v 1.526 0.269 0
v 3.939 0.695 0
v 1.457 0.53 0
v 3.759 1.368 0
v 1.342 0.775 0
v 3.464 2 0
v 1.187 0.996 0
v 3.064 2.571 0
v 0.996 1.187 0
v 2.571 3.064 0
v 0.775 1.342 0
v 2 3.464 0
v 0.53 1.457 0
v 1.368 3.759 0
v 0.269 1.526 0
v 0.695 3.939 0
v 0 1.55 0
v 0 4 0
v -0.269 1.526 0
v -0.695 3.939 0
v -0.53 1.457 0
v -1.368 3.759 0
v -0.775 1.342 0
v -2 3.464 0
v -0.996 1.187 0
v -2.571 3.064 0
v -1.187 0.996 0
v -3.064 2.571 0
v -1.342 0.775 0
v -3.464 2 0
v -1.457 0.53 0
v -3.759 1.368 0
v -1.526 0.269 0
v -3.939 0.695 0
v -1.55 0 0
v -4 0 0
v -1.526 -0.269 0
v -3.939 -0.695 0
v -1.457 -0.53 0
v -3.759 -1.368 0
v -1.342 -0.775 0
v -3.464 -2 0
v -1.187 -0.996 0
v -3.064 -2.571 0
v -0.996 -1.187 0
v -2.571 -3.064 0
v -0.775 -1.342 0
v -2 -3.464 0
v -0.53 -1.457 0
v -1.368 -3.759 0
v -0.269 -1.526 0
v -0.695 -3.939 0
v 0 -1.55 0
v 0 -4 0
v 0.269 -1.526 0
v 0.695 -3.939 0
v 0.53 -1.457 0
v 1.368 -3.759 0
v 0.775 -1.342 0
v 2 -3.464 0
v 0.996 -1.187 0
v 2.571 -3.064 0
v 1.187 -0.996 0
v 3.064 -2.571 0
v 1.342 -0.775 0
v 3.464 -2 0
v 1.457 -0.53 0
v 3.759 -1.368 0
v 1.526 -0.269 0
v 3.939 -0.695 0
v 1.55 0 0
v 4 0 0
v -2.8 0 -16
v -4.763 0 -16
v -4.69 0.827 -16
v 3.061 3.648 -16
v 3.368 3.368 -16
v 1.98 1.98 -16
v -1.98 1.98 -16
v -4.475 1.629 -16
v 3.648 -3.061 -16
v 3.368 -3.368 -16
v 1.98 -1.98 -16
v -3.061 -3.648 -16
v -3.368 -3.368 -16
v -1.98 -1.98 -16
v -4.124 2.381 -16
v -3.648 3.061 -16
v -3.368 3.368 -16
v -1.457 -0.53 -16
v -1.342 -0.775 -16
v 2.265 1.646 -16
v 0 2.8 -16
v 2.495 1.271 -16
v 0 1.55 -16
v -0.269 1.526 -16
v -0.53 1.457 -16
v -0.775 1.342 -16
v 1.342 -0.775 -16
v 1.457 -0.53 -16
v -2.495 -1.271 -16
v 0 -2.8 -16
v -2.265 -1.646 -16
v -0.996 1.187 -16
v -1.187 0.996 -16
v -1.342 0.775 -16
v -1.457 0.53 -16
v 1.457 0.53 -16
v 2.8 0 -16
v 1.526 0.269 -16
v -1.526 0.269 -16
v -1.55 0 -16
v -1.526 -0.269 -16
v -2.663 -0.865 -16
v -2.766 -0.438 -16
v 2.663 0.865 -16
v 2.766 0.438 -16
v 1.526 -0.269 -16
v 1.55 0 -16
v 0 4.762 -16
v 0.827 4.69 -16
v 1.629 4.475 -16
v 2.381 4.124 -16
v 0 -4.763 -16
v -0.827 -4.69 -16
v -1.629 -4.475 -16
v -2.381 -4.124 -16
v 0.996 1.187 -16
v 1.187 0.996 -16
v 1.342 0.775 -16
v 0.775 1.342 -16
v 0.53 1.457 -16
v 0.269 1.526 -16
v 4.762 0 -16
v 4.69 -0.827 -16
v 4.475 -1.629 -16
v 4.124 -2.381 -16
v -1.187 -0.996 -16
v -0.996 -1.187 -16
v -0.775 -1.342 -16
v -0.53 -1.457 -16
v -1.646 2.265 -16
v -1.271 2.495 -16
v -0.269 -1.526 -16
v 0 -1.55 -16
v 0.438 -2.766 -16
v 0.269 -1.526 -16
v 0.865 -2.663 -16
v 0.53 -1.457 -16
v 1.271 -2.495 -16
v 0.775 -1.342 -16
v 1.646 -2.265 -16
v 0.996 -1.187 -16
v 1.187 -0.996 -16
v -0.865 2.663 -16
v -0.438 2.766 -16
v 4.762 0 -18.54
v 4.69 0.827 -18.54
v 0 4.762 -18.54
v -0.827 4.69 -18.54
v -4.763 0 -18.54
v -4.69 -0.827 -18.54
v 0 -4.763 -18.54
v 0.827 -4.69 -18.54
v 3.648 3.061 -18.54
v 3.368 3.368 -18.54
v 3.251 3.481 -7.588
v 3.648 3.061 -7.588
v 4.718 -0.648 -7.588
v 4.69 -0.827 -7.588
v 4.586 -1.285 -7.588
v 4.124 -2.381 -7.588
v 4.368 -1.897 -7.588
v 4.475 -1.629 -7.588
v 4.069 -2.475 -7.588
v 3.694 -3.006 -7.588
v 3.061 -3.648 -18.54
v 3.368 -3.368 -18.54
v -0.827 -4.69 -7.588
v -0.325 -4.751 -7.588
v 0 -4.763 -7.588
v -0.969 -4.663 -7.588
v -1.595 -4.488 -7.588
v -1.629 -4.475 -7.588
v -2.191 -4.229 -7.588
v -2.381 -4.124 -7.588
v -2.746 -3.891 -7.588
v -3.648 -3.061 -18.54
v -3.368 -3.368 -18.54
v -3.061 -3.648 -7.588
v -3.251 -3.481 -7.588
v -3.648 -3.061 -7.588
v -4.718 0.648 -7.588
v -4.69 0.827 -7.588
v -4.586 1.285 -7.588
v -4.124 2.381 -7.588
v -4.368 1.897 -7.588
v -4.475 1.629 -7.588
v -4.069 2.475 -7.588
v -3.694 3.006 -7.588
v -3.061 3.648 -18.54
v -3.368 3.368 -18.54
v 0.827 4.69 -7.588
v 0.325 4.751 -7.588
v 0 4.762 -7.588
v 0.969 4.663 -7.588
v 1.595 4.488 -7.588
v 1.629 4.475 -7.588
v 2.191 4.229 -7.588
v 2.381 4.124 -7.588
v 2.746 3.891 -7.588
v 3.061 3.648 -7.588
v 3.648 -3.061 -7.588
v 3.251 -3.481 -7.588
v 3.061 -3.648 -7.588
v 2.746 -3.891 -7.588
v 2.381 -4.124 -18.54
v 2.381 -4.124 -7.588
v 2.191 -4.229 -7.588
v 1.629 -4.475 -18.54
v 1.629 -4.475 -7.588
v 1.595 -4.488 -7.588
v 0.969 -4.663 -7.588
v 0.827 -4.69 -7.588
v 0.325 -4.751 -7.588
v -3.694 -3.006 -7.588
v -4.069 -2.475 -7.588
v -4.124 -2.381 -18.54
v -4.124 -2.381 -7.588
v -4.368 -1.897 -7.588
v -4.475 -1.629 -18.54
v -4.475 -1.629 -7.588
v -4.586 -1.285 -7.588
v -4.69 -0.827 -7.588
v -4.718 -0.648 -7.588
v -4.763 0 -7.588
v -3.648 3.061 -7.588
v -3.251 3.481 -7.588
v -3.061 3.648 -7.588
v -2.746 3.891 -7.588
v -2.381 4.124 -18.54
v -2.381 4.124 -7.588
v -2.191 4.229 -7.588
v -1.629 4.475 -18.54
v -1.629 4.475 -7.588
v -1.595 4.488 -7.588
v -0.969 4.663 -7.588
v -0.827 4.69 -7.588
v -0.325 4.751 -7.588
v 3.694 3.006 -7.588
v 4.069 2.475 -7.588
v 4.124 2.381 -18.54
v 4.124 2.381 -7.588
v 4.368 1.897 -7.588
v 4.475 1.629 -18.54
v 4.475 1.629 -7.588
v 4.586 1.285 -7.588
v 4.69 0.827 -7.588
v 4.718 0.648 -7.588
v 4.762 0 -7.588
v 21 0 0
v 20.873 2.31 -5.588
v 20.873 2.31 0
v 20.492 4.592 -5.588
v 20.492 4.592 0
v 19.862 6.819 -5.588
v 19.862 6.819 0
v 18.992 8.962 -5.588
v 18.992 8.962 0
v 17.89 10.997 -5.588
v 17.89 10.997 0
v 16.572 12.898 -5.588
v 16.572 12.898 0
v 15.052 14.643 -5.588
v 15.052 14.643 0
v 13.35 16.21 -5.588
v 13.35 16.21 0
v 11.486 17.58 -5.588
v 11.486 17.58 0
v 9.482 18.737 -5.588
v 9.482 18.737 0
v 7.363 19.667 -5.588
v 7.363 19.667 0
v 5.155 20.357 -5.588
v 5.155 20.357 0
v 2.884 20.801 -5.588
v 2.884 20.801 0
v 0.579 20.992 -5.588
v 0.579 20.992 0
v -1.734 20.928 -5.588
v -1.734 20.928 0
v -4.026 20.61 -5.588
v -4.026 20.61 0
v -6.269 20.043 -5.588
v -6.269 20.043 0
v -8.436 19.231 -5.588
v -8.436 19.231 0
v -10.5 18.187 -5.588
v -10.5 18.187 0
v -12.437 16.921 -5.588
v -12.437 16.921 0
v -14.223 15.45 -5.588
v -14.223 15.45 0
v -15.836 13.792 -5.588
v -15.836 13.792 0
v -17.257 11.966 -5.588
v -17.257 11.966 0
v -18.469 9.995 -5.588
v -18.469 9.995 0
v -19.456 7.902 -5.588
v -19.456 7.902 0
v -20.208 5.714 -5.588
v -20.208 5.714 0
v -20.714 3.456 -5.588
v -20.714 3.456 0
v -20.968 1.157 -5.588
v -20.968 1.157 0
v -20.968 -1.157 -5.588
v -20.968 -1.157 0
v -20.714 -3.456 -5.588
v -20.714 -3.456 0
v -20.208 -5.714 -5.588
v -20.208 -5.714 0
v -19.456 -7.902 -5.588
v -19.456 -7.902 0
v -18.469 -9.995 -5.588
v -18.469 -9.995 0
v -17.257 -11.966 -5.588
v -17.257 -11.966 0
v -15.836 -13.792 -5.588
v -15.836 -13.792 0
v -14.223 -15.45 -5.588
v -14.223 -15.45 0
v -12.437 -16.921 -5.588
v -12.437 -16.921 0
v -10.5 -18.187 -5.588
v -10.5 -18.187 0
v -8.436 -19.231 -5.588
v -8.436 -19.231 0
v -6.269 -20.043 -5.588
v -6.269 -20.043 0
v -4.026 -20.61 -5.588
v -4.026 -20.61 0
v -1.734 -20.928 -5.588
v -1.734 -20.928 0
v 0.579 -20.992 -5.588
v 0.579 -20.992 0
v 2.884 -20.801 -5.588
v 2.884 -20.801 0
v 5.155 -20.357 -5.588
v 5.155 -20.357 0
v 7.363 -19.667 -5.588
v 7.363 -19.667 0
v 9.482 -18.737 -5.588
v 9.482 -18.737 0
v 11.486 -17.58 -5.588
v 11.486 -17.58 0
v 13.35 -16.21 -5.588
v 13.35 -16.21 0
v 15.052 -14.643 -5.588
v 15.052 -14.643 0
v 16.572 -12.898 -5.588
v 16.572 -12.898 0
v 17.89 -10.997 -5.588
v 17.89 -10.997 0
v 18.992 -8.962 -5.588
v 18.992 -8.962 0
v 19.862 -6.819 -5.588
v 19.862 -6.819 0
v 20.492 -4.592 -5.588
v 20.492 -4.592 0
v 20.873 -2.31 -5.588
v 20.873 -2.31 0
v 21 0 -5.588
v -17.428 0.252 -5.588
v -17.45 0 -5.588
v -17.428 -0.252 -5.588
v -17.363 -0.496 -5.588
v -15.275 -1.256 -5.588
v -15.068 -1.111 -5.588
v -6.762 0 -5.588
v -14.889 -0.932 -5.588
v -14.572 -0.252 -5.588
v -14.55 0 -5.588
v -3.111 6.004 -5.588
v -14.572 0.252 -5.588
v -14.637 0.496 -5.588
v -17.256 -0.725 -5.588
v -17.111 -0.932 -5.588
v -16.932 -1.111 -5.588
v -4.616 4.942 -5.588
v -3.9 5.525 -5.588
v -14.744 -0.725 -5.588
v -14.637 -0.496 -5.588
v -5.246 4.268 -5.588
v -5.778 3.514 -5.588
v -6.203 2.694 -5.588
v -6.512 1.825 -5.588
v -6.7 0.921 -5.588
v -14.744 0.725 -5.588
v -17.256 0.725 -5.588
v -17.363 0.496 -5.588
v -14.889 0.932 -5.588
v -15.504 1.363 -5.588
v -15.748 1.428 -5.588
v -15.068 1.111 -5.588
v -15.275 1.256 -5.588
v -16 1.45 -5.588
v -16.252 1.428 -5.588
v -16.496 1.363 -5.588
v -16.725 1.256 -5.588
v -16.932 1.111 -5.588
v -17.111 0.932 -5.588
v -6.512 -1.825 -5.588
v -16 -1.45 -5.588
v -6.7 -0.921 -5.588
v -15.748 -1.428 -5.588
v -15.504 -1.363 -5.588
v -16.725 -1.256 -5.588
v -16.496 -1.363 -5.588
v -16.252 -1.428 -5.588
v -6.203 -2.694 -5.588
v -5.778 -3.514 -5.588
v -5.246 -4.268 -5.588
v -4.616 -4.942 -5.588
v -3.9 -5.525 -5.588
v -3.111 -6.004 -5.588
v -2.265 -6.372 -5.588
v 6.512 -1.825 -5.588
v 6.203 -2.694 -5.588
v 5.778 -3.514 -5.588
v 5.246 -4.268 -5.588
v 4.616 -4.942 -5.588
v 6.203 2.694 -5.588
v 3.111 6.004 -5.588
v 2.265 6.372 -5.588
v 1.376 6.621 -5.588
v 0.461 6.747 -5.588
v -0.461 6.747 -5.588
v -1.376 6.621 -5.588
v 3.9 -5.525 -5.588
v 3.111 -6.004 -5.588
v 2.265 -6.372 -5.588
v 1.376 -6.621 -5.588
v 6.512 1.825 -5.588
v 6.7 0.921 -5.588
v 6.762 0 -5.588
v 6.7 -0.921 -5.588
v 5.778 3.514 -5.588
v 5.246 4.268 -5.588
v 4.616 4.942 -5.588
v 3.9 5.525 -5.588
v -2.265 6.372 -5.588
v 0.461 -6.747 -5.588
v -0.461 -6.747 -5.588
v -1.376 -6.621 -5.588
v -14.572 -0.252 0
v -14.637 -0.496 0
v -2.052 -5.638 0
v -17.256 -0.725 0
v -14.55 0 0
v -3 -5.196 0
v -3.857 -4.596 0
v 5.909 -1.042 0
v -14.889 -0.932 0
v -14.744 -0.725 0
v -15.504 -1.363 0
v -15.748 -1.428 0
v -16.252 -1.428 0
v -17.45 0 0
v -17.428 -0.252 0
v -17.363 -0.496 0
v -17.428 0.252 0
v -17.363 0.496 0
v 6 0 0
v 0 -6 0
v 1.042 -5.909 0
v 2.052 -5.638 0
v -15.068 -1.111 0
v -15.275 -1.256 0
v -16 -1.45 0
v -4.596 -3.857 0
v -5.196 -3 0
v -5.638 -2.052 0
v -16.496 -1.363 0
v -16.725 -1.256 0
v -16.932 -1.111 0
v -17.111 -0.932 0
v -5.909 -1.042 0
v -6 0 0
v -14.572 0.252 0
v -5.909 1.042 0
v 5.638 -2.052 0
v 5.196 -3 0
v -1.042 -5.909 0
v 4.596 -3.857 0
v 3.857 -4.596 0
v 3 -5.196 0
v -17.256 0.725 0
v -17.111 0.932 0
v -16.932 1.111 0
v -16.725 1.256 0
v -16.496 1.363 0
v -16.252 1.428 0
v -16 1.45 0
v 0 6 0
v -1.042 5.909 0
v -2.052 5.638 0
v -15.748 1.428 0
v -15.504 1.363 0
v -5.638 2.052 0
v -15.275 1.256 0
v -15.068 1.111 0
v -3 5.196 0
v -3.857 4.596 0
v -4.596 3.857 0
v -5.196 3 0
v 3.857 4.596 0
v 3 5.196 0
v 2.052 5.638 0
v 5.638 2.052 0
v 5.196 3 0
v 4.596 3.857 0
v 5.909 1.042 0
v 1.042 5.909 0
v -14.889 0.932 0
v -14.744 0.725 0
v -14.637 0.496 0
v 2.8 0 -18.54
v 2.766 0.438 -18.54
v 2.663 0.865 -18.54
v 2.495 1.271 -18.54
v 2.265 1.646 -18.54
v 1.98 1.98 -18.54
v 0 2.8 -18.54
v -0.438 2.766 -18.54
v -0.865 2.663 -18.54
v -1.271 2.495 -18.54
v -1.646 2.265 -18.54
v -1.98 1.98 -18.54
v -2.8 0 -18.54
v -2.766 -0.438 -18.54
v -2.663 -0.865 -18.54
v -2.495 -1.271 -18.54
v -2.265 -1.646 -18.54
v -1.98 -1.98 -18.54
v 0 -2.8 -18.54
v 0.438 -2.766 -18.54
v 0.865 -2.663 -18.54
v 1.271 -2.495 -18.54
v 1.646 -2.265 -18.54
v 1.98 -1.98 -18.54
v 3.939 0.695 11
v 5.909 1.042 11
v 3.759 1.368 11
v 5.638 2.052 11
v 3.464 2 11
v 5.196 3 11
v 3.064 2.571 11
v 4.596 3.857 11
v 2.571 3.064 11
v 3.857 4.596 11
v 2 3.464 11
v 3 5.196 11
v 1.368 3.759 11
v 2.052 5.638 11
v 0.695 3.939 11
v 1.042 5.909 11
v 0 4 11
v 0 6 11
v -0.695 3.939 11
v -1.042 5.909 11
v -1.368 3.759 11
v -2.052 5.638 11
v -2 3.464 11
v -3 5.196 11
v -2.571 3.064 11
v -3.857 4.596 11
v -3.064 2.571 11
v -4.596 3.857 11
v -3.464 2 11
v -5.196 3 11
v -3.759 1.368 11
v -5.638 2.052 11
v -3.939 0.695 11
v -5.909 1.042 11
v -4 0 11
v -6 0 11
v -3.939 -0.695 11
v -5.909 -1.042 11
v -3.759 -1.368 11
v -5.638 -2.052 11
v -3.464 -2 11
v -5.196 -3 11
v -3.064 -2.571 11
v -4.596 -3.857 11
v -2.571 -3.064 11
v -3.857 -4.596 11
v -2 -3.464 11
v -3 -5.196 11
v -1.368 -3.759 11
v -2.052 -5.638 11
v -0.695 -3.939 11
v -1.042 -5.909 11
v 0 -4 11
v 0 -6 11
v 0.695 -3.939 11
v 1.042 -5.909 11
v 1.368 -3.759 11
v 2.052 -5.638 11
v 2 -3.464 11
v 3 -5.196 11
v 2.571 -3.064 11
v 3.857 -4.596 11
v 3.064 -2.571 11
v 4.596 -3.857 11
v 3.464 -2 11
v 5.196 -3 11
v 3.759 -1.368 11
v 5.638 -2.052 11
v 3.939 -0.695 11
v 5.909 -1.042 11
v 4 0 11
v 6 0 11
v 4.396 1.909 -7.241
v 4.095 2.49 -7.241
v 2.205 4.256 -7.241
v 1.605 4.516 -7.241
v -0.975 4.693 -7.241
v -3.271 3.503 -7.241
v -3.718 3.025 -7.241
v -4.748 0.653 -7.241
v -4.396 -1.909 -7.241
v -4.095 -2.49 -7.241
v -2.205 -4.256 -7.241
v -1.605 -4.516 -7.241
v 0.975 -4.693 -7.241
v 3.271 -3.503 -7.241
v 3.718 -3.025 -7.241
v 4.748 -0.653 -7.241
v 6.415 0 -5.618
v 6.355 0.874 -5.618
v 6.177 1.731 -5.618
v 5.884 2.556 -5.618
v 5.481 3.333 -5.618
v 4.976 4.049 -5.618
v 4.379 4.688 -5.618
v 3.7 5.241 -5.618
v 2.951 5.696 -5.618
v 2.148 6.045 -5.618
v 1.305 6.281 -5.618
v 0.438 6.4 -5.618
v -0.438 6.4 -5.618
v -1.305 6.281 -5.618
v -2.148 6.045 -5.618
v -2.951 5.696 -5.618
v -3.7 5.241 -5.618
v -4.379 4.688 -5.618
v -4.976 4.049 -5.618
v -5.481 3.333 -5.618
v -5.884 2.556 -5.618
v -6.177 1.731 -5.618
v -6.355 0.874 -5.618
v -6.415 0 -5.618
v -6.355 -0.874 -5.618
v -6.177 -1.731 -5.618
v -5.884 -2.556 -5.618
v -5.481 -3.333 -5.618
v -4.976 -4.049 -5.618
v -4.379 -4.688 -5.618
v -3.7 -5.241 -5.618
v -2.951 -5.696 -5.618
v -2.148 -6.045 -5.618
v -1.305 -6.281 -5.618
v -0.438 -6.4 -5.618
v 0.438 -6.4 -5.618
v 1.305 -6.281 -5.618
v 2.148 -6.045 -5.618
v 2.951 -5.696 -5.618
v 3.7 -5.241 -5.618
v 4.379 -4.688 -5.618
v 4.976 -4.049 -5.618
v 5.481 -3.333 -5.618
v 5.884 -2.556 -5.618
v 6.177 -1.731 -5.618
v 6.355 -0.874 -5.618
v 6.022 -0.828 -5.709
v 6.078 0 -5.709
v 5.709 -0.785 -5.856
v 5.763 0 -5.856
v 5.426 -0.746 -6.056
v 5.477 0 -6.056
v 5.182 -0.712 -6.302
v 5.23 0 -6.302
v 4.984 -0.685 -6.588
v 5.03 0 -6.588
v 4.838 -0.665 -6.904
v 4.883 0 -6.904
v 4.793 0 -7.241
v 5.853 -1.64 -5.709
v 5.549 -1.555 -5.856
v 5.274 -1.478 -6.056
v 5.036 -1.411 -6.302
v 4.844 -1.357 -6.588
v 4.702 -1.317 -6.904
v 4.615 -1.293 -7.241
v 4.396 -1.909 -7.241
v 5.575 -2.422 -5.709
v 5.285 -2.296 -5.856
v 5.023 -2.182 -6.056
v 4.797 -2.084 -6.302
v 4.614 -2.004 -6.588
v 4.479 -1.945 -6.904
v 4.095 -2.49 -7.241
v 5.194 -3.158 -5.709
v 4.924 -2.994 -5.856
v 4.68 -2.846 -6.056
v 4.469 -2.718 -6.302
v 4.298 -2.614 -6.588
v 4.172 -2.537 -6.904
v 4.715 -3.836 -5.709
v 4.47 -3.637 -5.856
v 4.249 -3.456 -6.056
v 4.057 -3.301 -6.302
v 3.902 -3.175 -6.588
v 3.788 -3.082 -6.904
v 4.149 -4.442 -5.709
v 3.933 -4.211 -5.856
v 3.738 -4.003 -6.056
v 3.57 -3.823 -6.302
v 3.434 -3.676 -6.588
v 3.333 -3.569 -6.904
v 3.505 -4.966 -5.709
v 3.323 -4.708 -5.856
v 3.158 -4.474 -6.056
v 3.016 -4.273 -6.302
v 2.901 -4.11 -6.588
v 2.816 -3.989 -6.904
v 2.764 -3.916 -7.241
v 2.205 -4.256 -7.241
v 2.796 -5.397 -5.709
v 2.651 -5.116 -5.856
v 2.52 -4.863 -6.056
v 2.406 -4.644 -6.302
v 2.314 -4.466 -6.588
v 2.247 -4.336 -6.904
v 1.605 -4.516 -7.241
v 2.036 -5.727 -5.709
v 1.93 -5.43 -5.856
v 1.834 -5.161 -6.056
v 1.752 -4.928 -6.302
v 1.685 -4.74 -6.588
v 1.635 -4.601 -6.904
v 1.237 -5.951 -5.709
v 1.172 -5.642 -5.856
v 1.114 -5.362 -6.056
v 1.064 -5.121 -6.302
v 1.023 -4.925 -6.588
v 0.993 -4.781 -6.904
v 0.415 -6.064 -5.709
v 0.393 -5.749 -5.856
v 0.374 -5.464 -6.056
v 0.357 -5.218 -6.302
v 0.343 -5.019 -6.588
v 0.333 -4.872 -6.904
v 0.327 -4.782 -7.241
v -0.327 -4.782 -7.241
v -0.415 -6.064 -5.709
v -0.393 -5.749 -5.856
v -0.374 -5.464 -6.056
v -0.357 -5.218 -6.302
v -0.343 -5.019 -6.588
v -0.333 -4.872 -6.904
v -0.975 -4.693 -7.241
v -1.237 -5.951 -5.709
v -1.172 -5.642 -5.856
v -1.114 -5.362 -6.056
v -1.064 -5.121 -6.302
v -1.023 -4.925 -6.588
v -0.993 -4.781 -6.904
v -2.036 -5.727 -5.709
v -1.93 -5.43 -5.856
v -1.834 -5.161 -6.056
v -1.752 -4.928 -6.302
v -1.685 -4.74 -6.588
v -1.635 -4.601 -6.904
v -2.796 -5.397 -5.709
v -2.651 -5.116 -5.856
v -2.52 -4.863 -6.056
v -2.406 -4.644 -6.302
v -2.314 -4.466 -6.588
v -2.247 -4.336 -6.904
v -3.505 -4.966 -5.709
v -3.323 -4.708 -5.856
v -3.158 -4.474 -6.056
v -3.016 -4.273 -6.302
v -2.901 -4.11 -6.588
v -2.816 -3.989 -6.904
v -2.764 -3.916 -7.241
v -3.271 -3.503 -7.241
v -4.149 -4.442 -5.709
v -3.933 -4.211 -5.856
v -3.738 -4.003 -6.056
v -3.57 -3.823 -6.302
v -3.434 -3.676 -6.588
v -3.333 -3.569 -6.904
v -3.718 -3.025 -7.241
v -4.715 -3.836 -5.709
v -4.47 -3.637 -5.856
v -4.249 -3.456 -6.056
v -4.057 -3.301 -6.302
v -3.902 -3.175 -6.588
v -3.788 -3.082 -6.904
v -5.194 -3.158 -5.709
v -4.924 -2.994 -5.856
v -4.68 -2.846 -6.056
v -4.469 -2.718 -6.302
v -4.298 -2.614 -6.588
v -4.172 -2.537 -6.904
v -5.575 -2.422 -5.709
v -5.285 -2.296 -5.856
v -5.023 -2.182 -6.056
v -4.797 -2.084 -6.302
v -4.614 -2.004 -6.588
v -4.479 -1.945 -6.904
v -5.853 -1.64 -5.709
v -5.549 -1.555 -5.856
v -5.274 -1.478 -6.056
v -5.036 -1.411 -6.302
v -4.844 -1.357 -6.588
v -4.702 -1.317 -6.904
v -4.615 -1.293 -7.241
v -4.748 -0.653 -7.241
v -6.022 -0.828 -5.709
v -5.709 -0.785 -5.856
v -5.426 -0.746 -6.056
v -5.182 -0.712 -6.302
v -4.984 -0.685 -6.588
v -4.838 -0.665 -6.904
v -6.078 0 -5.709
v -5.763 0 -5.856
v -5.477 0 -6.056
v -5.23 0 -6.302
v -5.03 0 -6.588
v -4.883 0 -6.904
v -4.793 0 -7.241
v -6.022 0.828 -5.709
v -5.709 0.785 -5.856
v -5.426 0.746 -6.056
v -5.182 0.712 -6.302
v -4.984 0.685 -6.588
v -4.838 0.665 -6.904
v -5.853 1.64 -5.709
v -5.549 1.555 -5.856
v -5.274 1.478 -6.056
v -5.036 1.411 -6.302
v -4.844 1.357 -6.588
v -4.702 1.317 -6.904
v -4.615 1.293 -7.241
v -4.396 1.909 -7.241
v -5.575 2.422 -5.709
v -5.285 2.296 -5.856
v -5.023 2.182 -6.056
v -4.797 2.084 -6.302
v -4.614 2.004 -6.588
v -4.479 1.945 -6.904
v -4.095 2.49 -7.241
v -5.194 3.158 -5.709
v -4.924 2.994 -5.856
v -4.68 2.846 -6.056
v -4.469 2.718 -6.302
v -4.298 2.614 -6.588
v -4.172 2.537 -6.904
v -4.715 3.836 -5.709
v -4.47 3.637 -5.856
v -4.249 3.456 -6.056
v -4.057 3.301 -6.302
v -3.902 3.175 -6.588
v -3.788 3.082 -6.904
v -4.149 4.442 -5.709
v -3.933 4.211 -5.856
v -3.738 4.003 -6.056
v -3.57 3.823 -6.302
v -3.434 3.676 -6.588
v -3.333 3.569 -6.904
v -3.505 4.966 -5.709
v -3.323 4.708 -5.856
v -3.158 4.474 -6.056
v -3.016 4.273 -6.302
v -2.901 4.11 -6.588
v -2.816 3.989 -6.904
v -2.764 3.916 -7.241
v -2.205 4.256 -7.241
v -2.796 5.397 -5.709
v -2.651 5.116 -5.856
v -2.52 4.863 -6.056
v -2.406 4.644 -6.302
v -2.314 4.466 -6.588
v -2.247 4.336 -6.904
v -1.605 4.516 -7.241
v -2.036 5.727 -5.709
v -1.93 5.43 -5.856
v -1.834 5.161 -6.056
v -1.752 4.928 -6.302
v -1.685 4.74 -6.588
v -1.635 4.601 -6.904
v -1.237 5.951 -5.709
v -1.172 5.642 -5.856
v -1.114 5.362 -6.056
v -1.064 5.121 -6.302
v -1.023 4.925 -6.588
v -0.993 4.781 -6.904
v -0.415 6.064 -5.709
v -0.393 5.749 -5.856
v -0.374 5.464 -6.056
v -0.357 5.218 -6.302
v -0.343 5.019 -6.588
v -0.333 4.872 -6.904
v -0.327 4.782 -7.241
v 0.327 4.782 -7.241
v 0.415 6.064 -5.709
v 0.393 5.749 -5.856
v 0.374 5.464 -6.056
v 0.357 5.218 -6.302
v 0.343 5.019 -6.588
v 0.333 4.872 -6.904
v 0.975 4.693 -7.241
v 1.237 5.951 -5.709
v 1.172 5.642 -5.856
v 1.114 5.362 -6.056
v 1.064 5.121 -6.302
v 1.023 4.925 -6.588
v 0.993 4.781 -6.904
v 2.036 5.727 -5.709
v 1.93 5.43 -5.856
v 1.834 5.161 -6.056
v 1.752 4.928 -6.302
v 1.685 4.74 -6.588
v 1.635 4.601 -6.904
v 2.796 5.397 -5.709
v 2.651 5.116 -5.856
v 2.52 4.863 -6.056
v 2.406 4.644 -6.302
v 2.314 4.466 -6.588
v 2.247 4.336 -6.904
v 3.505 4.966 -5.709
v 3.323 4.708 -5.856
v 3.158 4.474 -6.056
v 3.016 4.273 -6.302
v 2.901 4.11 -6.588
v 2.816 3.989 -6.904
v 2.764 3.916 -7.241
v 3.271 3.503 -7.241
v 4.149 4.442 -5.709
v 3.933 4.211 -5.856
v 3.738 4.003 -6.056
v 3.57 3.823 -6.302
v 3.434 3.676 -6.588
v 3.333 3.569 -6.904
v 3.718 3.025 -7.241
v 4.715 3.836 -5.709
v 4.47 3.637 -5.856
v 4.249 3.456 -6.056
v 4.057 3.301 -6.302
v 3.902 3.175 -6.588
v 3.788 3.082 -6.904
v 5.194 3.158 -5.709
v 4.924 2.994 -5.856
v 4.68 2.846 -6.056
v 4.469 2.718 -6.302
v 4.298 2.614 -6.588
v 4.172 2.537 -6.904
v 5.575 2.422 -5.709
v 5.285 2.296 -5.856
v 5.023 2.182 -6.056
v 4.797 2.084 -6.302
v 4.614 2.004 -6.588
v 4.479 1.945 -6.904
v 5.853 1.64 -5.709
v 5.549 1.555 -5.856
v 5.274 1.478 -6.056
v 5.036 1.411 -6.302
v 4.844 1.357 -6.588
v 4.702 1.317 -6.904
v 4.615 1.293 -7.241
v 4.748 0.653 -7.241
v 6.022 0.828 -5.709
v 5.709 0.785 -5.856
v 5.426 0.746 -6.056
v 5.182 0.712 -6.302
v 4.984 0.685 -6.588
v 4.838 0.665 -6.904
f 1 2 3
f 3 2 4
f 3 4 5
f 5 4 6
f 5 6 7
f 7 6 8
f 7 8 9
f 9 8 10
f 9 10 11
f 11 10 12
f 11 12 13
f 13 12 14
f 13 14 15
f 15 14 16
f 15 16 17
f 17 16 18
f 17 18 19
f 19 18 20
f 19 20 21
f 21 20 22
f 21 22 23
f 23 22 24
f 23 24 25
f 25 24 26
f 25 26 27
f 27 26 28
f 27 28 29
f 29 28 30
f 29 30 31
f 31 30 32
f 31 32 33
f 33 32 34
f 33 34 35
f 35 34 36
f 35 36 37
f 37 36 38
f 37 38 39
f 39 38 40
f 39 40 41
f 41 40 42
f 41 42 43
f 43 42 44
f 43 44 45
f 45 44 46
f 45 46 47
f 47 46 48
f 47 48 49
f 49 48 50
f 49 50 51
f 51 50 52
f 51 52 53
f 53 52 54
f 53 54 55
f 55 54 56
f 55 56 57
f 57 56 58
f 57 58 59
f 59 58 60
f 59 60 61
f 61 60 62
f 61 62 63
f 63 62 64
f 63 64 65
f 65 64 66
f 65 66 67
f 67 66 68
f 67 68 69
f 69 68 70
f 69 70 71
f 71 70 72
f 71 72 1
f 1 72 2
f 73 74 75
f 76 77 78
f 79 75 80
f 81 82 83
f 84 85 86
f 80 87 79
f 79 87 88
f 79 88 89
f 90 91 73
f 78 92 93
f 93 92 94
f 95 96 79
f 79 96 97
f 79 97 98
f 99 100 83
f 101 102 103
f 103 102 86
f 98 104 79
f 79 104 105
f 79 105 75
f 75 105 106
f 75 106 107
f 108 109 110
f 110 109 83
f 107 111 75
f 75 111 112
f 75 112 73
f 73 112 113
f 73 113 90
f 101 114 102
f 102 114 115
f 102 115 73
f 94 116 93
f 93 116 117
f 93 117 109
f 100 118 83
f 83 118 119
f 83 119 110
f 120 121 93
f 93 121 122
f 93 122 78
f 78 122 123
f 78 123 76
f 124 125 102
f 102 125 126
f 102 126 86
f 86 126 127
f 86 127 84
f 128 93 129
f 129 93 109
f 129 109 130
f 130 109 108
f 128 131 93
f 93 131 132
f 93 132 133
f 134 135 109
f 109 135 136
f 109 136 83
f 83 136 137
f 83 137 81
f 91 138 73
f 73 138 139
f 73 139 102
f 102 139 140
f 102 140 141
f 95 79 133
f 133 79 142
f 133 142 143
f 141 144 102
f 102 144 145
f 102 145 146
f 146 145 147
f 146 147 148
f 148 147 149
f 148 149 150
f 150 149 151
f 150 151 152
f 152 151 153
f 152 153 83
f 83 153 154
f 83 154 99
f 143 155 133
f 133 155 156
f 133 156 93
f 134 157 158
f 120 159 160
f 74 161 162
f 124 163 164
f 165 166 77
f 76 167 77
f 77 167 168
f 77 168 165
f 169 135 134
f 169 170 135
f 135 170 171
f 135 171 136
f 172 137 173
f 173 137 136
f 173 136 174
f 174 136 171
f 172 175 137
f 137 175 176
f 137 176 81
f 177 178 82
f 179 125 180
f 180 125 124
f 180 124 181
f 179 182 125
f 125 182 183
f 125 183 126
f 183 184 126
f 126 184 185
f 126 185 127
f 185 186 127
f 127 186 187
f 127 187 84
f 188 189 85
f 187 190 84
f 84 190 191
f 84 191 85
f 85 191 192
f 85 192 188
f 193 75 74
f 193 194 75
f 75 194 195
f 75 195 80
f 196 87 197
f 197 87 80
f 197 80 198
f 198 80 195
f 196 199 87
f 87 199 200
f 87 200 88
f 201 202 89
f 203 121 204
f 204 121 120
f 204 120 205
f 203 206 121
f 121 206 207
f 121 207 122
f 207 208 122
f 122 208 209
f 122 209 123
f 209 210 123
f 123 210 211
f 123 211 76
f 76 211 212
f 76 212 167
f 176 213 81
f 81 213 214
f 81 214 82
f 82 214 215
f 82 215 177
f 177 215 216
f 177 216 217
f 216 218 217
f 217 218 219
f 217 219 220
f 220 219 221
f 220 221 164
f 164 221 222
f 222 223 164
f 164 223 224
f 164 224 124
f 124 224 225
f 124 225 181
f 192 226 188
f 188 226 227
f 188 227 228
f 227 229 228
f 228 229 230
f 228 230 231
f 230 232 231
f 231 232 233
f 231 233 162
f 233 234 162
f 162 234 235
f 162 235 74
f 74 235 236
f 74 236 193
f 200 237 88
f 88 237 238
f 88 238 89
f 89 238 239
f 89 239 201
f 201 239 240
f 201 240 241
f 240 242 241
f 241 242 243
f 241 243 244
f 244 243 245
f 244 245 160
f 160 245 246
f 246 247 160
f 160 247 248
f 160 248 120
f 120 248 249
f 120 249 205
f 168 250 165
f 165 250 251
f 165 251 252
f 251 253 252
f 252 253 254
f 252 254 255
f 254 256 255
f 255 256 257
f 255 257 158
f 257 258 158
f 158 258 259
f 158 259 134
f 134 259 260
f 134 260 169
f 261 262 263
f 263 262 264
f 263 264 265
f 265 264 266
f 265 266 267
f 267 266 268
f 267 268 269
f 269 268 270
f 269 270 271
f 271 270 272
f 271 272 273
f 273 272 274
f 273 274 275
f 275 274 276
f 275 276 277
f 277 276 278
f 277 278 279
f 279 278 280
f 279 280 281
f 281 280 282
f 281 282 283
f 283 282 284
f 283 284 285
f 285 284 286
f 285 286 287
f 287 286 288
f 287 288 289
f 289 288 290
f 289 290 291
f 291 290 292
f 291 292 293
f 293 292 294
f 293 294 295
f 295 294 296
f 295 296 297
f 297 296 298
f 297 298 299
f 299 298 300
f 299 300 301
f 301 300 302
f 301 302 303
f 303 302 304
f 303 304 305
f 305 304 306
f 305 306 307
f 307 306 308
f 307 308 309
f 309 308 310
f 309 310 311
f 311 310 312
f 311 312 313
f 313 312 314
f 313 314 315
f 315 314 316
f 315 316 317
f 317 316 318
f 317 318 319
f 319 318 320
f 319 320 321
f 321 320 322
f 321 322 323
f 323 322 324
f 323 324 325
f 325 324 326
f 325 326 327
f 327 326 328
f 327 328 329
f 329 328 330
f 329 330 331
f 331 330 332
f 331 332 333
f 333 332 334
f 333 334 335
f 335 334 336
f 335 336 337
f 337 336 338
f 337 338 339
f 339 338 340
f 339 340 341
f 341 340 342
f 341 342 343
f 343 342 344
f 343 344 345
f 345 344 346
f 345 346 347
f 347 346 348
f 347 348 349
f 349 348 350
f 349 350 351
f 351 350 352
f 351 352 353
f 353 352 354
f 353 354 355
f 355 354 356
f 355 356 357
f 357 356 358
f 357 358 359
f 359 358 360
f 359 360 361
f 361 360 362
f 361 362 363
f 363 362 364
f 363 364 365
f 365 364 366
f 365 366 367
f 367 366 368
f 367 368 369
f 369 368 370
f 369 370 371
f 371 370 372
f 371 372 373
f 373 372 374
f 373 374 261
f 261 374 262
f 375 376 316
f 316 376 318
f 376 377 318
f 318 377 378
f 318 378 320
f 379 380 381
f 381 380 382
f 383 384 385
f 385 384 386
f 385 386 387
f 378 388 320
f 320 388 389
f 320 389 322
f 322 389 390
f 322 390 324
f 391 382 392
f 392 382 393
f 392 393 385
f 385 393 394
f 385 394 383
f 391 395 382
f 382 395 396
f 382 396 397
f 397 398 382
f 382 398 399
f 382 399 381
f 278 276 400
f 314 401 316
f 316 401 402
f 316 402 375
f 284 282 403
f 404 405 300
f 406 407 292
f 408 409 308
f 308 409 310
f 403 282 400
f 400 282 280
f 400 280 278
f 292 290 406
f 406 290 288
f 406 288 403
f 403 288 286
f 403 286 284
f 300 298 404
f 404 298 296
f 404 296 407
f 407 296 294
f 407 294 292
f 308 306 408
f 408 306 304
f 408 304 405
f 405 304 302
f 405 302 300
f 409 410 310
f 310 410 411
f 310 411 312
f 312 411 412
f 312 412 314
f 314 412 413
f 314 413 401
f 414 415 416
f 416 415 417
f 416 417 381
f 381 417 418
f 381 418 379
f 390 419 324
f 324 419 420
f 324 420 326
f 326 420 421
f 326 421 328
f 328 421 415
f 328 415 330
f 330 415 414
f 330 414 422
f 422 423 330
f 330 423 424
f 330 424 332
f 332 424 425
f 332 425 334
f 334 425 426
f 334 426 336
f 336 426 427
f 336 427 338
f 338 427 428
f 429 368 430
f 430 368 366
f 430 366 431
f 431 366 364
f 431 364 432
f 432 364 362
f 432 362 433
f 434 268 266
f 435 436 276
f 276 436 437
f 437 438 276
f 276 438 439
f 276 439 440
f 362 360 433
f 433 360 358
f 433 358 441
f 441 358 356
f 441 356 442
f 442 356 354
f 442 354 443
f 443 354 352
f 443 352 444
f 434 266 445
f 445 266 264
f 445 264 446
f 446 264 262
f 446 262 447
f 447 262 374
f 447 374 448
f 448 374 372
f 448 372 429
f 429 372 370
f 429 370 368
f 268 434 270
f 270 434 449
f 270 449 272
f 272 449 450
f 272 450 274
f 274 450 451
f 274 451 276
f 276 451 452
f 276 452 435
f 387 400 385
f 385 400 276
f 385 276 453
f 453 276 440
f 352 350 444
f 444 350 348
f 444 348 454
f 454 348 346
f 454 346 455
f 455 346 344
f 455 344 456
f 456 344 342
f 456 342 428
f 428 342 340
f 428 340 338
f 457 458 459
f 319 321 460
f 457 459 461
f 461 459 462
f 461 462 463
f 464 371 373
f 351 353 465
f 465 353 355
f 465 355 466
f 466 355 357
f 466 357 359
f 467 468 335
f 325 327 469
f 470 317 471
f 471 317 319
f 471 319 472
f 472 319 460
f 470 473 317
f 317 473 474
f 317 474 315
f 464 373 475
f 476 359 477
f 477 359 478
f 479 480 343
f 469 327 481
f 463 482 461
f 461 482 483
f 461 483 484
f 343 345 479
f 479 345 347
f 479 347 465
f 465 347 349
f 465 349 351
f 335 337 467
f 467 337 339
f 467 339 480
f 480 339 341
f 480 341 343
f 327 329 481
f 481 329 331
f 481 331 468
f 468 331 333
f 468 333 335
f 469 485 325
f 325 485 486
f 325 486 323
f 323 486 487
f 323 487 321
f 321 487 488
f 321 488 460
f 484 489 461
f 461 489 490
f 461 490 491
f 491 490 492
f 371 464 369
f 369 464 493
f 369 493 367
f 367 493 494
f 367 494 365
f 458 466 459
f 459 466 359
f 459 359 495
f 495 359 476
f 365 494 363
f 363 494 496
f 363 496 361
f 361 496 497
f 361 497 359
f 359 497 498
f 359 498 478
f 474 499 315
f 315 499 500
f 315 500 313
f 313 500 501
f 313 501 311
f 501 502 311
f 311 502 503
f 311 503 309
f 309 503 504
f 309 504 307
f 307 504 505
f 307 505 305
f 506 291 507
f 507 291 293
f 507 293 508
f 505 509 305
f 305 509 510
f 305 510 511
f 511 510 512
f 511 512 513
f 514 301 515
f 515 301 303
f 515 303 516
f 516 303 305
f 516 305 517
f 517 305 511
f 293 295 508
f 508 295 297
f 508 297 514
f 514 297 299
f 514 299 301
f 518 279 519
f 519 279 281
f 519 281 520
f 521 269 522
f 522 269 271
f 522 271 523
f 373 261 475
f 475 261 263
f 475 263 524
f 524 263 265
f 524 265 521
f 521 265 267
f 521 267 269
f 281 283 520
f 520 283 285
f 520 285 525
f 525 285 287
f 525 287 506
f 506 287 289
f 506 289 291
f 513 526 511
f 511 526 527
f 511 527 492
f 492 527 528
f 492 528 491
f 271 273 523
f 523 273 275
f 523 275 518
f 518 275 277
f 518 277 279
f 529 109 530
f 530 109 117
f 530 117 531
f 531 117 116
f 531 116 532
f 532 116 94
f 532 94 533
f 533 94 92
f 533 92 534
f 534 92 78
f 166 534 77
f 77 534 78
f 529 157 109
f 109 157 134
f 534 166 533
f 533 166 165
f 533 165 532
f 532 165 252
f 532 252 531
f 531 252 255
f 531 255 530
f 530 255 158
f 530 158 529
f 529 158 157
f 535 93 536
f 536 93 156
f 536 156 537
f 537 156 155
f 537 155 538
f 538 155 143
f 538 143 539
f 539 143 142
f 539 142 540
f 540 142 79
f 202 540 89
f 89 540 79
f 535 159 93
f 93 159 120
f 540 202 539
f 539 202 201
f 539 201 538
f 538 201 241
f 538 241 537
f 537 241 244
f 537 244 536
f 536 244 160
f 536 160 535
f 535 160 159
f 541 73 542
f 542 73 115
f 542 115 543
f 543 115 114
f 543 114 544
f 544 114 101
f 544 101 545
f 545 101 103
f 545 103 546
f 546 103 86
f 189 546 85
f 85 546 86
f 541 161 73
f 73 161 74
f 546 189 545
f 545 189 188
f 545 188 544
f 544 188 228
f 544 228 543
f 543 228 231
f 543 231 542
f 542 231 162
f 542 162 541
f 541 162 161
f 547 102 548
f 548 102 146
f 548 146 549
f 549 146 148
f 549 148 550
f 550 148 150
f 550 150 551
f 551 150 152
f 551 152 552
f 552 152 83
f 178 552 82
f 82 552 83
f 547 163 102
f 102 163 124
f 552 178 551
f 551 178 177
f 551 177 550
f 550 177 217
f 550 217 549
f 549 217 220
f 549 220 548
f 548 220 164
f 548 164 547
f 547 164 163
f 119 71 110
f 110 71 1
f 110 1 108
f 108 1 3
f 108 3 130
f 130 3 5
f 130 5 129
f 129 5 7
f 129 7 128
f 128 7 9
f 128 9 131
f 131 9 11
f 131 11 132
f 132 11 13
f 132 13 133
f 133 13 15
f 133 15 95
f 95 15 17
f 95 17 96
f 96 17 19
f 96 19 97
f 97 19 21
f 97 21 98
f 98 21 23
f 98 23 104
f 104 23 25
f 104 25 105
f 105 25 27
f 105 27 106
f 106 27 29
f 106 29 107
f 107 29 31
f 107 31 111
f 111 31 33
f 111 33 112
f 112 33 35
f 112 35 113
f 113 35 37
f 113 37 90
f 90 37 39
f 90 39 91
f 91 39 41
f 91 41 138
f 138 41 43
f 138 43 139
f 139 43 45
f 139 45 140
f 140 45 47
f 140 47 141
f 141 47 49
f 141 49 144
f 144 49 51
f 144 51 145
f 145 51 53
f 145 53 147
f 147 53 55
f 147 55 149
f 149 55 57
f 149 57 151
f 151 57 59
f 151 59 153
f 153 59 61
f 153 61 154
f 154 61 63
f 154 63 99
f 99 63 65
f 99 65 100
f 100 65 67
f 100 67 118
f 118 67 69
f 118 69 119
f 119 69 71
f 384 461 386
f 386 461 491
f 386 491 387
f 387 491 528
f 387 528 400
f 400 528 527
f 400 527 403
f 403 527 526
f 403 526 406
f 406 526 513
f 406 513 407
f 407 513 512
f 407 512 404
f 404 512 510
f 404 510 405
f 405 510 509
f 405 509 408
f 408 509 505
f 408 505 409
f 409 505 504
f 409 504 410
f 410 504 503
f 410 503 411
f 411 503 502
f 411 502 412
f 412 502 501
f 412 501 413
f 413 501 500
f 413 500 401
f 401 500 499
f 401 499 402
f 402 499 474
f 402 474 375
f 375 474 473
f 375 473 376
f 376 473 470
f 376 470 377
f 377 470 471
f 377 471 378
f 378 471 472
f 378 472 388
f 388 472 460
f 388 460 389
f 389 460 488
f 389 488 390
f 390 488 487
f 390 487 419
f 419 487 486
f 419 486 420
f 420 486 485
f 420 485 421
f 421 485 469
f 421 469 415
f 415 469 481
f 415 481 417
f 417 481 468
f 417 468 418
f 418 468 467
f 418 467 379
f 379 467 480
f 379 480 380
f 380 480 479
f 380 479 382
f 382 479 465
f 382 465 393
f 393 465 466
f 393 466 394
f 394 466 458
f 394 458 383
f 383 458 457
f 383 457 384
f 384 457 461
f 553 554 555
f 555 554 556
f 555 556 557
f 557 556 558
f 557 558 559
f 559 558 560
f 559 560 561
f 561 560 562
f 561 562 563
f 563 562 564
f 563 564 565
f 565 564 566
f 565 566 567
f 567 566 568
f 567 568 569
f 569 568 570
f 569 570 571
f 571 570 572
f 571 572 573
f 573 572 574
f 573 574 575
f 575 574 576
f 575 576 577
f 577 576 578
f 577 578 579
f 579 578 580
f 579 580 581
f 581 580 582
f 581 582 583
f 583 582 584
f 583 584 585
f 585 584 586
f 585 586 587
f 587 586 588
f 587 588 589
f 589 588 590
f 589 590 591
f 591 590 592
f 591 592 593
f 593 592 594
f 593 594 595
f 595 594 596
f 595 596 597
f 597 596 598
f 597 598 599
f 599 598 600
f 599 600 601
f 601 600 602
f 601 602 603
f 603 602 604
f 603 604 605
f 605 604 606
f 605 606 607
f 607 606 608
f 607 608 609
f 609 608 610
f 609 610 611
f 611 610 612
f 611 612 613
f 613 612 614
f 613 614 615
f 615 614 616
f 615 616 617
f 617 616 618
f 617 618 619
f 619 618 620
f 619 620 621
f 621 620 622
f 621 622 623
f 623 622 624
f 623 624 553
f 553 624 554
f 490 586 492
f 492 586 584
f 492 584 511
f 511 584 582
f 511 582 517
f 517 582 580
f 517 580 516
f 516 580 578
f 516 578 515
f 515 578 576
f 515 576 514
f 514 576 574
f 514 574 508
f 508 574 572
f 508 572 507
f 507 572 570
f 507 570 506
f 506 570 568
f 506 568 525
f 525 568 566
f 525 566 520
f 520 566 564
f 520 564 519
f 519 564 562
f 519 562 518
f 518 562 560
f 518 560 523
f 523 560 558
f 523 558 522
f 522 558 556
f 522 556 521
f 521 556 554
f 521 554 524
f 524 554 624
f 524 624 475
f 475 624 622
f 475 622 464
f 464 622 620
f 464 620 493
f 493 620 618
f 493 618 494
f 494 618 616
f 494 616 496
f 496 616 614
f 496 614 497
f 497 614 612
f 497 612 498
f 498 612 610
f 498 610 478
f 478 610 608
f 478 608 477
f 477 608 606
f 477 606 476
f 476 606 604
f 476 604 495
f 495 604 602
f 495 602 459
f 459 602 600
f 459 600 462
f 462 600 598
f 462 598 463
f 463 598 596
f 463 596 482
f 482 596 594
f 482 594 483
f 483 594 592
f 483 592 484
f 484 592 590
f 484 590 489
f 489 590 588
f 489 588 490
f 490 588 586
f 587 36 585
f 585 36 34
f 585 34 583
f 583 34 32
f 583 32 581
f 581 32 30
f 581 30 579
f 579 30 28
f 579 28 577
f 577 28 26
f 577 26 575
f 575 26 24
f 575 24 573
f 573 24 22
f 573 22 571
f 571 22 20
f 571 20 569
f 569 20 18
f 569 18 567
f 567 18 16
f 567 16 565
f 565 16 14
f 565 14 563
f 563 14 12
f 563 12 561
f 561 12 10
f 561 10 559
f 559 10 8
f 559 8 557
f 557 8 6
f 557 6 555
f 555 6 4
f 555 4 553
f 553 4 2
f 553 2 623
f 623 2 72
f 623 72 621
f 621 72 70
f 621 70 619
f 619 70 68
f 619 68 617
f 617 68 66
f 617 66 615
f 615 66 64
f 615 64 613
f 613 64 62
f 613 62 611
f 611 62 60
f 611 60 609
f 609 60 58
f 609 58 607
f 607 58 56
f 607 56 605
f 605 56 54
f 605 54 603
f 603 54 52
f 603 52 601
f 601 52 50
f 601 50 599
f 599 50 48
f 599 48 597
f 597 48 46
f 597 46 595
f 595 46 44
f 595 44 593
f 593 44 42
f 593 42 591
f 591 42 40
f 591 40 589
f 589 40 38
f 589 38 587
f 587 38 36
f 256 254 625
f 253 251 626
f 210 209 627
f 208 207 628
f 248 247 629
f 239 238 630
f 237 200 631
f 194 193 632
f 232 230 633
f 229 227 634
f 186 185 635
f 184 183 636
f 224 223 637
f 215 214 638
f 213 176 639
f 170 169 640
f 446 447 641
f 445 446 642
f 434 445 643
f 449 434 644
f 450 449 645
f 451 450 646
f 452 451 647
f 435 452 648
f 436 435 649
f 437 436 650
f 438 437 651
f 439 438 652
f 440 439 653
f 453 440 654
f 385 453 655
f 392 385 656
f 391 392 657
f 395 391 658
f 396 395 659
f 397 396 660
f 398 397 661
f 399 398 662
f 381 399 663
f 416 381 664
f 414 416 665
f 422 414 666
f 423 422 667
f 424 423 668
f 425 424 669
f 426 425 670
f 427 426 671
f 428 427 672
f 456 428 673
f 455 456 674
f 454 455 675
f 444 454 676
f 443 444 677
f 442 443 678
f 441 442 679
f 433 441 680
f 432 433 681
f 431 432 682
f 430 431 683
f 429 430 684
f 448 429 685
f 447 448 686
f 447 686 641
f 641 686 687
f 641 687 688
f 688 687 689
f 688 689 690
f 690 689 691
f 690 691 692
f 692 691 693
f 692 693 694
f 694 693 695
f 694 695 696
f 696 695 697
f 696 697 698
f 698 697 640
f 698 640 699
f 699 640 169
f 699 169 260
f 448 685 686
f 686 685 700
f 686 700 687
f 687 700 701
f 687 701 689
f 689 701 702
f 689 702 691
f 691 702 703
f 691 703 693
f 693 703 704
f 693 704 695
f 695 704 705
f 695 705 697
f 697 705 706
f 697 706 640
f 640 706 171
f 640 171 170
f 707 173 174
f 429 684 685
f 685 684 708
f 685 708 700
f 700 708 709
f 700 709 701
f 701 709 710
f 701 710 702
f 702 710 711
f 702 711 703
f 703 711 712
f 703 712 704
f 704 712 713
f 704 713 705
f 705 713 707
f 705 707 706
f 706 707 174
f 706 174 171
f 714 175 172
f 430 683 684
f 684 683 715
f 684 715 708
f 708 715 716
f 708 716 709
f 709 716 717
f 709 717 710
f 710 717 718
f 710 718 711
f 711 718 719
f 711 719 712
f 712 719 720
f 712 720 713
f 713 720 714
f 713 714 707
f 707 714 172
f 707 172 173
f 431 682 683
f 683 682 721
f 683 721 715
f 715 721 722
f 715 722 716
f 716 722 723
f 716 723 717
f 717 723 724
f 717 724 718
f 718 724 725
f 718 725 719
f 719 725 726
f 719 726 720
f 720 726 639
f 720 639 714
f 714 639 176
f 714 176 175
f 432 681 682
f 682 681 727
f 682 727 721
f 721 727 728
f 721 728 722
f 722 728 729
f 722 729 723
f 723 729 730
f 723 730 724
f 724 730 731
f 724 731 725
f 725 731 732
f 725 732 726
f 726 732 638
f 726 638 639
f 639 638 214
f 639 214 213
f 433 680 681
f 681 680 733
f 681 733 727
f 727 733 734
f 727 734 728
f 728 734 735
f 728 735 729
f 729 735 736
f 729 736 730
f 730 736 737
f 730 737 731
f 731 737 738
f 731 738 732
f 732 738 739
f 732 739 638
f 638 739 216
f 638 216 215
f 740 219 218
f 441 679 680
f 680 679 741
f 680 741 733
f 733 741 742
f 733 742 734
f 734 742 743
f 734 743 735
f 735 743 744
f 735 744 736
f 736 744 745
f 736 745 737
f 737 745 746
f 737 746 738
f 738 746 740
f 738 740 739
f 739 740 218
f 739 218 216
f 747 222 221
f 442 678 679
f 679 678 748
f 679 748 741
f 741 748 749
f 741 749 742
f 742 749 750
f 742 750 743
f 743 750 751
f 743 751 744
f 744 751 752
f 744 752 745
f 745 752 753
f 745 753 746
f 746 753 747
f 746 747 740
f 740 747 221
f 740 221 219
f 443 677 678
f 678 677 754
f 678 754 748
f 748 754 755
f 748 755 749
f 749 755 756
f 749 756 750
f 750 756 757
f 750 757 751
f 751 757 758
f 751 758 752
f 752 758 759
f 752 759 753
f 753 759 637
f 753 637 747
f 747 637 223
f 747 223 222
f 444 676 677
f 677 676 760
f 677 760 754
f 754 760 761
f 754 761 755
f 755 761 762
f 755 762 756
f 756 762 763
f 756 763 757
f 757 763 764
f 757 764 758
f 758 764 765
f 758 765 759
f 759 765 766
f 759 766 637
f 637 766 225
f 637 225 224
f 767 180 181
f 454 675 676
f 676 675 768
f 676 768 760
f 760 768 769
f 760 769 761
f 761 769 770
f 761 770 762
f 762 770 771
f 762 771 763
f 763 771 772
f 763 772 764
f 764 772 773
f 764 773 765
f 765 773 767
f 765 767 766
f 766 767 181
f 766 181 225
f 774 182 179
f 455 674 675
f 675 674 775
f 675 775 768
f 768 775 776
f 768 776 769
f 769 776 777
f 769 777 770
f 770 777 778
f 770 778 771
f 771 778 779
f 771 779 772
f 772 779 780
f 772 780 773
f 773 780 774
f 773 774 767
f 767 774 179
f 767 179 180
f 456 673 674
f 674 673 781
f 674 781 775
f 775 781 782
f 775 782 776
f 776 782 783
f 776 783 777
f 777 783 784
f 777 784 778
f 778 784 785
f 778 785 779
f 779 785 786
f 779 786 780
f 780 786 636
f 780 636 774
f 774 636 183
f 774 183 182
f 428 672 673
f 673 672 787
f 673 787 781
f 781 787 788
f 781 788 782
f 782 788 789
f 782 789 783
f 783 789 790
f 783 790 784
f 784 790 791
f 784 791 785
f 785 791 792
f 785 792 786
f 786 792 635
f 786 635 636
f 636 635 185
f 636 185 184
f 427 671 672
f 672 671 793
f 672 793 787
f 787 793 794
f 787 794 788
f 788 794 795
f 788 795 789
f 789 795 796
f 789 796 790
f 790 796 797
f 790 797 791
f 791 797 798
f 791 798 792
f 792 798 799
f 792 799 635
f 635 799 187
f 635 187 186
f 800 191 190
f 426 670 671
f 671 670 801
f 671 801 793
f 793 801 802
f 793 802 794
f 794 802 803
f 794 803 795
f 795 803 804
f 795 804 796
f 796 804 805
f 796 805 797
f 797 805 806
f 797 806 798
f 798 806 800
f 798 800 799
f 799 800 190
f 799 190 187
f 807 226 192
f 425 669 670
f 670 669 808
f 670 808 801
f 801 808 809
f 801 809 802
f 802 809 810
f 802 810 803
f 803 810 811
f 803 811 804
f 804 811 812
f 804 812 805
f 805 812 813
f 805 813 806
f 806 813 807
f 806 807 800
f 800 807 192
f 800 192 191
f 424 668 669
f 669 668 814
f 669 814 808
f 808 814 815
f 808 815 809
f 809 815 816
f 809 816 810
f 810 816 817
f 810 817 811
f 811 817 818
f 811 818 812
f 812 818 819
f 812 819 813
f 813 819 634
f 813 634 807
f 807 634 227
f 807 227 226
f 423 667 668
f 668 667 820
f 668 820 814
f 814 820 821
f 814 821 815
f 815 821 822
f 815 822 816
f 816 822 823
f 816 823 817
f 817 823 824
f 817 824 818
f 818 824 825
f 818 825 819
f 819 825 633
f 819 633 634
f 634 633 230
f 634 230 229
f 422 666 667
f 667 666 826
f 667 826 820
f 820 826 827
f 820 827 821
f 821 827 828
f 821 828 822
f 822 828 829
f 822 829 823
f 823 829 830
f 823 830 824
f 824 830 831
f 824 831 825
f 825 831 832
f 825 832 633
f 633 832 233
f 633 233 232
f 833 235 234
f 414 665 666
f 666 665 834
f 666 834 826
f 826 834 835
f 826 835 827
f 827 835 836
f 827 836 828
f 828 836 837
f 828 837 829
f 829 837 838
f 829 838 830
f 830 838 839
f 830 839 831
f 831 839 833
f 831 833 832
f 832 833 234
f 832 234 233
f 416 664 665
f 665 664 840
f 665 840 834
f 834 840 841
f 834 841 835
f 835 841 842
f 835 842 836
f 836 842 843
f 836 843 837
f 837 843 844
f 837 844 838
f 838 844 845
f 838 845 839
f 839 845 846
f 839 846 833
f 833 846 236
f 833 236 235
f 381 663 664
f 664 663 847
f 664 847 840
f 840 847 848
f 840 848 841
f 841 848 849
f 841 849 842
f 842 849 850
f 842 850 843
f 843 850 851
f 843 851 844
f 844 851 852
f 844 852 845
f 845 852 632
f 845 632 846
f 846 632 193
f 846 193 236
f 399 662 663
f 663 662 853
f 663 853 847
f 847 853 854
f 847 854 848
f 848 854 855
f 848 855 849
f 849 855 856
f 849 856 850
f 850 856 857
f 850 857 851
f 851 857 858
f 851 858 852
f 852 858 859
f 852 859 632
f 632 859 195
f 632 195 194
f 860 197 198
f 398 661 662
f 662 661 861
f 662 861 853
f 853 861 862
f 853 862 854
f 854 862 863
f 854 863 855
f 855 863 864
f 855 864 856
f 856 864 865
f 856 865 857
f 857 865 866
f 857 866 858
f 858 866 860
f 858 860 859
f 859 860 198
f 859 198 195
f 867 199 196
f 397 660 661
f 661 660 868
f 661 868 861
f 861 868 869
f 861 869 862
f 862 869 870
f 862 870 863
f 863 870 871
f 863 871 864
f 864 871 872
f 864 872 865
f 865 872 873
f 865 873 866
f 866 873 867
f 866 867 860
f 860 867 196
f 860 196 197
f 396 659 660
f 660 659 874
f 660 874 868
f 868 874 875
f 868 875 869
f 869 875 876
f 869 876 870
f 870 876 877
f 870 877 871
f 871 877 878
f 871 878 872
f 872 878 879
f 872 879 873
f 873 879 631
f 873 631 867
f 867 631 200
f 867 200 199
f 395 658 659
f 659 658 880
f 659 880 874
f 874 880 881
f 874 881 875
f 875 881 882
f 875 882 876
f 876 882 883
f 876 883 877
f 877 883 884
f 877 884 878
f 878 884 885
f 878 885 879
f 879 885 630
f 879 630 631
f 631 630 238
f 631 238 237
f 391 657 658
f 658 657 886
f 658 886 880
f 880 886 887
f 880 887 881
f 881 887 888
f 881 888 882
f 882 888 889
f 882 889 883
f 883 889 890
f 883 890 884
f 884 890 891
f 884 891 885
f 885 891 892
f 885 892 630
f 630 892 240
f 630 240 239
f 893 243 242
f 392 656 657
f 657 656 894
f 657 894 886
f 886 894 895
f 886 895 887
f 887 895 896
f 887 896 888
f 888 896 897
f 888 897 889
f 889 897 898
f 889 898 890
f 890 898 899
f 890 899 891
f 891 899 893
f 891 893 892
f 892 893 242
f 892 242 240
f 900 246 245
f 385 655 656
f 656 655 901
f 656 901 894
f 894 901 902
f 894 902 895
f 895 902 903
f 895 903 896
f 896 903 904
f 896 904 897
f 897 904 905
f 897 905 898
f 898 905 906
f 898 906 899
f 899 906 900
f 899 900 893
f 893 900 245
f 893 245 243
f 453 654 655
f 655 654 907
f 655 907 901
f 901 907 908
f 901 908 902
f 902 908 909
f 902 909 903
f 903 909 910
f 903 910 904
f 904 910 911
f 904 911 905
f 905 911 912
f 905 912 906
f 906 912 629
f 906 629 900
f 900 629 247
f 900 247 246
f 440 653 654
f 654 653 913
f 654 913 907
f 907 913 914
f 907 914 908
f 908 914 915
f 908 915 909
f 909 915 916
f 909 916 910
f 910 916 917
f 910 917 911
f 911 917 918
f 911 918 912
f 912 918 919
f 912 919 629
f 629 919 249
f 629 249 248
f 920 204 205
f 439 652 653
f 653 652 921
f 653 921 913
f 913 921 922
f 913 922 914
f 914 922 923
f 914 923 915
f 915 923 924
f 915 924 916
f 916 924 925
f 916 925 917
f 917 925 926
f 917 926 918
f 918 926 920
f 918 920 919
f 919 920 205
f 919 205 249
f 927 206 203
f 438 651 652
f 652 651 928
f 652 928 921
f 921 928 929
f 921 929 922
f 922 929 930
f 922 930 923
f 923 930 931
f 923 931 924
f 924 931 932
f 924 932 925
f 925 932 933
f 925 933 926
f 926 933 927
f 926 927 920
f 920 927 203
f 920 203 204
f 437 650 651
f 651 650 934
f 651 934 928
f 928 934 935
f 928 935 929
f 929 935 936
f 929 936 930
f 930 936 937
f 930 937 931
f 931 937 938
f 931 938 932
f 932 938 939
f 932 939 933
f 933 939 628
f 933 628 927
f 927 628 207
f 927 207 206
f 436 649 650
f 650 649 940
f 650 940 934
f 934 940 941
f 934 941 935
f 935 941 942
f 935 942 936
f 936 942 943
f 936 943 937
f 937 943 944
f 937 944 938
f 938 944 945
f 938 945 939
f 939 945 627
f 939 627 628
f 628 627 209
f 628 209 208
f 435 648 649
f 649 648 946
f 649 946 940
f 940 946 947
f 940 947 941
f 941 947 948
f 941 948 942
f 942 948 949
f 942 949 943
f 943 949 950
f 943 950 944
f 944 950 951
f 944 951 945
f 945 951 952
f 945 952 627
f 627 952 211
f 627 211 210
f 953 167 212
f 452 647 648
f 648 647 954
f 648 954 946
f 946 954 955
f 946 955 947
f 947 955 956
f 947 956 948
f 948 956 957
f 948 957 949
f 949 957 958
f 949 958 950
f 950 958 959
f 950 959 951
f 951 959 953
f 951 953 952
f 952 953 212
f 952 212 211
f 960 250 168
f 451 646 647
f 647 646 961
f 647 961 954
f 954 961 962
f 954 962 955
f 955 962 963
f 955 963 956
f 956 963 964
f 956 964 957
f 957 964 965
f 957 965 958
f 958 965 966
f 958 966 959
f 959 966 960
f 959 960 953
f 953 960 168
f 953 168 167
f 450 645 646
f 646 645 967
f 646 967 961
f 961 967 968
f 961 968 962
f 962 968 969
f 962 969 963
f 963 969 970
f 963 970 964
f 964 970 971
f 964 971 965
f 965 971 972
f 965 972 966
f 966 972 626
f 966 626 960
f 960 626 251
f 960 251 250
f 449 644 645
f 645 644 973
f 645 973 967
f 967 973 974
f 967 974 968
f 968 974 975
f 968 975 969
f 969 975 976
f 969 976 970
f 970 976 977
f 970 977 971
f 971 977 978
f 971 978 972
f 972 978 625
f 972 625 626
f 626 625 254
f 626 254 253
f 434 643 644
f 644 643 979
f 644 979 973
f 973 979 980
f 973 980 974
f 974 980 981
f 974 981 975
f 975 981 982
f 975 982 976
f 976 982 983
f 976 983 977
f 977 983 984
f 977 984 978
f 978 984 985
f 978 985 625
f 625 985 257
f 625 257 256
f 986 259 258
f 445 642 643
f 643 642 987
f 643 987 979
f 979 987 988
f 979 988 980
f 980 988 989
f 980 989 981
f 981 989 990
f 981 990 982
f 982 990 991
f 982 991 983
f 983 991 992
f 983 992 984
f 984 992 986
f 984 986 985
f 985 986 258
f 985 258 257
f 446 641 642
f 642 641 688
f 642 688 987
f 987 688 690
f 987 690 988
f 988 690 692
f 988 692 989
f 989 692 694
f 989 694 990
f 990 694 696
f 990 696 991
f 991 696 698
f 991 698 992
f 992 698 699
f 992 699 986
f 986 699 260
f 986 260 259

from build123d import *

# Parameters (mm, degrees)
SKETCH1_R           = 4.7625
BOSS_EXTRUDE1_DEPTH = 16
SKETCH2_R           = 21
BOSS_EXTRUDE2_DEPTH = 5.588
BOSS_EXTRUDE3_DEPTH = 2.54
SKETCH6_R           = 1.55
CUT_EXTRUDE1_DEPTH  = 19.54
SKETCH7_R           = 1.45
CUT_EXTRUDE2_DEPTH  = 7.62
SKETCH8_R           = 6
SKETCH8_R_2         = 4
BOSS_EXTRUDE4_DEPTH = 11
FILLET1_R           = 2


with BuildPart() as part:
    # Sketch1 → Boss-Extrude1 (new body)
    with BuildSketch(Plane.XY):
        Circle(SKETCH1_R)
    extrude(amount=-BOSS_EXTRUDE1_DEPTH)

    # Sketch2 → Boss-Extrude2 (add)
    with BuildSketch(Plane.XY):
        Circle(SKETCH2_R)
    extrude(amount=-BOSS_EXTRUDE2_DEPTH)

    # Sketch3 → Boss-Extrude3 (add)
    with BuildSketch(Plane(origin=(0, 0, -16), x_dir=(-1, 0, 0), z_dir=(0, 0, -1))):
        with BuildLine():
            Line((1.979898987, -1.979898987), (3.367596045, -3.367596045))
            ThreePointArc((3.367596045, -3.367596045), (4.399976274, -1.822529847), (4.7625, 0))
            Line((4.7625, 0), (2.8, 0))
            ThreePointArc((2.8, 0), (2.586862691, -1.071513611), (1.979898987, -1.979898987))
        make_face()
        with BuildLine():
            ThreePointArc((-3.367596045, 3.367596045), (-4.399976274, 1.822529847), (-4.7625, 0))
            Line((-4.7625, 0), (-2.8, 0))
            ThreePointArc((-2.8, 0), (-2.586862691, 1.071513611), (-1.979898987, 1.979898987))
            Line((-1.979898987, 1.979898987), (-3.367596045, 3.367596045))
        make_face()
        with BuildLine():
            ThreePointArc((-3.367596045, -3.367596045), (-1.822529847, -4.399976274), (0, -4.7625))
            Line((0, -4.7625), (0, -2.8))
            ThreePointArc((0, -2.8), (-1.071513611, -2.586862691), (-1.979898987, -1.979898987))
            Line((-1.979898987, -1.979898987), (-3.367596045, -3.367596045))
        make_face()
        with BuildLine():
            Line((0, 4.7625), (0, 2.8))
            ThreePointArc((0, 2.8), (1.071513611, 2.586862691), (1.979898987, 1.979898987))
            Line((1.979898987, 1.979898987), (3.367596045, 3.367596045))
            ThreePointArc((3.367596045, 3.367596045), (1.822529847, 4.399976274), (0, 4.7625))
        make_face()
    extrude(amount=BOSS_EXTRUDE3_DEPTH)

    # Sketch6 → Cut-Extrude1 (cut, through all)
    with BuildSketch(Plane.XY):
        Circle(SKETCH6_R)
    extrude(amount=-CUT_EXTRUDE1_DEPTH, mode=Mode.SUBTRACT)

    # Sketch7 → Cut-Extrude2 (cut)
    with BuildSketch(Plane.XY):
        with Locations((-16, 0)):
            Circle(SKETCH7_R)
    extrude(amount=-CUT_EXTRUDE2_DEPTH, mode=Mode.SUBTRACT)

    # Sketch8 → Boss-Extrude4 (add)
    with BuildSketch(Plane.XY):
        Circle(SKETCH8_R)
        Circle(SKETCH8_R_2, mode=Mode.SUBTRACT)
    extrude(amount=BOSS_EXTRUDE4_DEPTH)

    # Fillet1
    fillet1_edges = [part.edges().sort_by_distance(p)[0] for p in [
        (-4.7625, 0, -5.588),
    ]]
    fillet(fillet1_edges, radius=FILLET1_R)


solid = part.part
